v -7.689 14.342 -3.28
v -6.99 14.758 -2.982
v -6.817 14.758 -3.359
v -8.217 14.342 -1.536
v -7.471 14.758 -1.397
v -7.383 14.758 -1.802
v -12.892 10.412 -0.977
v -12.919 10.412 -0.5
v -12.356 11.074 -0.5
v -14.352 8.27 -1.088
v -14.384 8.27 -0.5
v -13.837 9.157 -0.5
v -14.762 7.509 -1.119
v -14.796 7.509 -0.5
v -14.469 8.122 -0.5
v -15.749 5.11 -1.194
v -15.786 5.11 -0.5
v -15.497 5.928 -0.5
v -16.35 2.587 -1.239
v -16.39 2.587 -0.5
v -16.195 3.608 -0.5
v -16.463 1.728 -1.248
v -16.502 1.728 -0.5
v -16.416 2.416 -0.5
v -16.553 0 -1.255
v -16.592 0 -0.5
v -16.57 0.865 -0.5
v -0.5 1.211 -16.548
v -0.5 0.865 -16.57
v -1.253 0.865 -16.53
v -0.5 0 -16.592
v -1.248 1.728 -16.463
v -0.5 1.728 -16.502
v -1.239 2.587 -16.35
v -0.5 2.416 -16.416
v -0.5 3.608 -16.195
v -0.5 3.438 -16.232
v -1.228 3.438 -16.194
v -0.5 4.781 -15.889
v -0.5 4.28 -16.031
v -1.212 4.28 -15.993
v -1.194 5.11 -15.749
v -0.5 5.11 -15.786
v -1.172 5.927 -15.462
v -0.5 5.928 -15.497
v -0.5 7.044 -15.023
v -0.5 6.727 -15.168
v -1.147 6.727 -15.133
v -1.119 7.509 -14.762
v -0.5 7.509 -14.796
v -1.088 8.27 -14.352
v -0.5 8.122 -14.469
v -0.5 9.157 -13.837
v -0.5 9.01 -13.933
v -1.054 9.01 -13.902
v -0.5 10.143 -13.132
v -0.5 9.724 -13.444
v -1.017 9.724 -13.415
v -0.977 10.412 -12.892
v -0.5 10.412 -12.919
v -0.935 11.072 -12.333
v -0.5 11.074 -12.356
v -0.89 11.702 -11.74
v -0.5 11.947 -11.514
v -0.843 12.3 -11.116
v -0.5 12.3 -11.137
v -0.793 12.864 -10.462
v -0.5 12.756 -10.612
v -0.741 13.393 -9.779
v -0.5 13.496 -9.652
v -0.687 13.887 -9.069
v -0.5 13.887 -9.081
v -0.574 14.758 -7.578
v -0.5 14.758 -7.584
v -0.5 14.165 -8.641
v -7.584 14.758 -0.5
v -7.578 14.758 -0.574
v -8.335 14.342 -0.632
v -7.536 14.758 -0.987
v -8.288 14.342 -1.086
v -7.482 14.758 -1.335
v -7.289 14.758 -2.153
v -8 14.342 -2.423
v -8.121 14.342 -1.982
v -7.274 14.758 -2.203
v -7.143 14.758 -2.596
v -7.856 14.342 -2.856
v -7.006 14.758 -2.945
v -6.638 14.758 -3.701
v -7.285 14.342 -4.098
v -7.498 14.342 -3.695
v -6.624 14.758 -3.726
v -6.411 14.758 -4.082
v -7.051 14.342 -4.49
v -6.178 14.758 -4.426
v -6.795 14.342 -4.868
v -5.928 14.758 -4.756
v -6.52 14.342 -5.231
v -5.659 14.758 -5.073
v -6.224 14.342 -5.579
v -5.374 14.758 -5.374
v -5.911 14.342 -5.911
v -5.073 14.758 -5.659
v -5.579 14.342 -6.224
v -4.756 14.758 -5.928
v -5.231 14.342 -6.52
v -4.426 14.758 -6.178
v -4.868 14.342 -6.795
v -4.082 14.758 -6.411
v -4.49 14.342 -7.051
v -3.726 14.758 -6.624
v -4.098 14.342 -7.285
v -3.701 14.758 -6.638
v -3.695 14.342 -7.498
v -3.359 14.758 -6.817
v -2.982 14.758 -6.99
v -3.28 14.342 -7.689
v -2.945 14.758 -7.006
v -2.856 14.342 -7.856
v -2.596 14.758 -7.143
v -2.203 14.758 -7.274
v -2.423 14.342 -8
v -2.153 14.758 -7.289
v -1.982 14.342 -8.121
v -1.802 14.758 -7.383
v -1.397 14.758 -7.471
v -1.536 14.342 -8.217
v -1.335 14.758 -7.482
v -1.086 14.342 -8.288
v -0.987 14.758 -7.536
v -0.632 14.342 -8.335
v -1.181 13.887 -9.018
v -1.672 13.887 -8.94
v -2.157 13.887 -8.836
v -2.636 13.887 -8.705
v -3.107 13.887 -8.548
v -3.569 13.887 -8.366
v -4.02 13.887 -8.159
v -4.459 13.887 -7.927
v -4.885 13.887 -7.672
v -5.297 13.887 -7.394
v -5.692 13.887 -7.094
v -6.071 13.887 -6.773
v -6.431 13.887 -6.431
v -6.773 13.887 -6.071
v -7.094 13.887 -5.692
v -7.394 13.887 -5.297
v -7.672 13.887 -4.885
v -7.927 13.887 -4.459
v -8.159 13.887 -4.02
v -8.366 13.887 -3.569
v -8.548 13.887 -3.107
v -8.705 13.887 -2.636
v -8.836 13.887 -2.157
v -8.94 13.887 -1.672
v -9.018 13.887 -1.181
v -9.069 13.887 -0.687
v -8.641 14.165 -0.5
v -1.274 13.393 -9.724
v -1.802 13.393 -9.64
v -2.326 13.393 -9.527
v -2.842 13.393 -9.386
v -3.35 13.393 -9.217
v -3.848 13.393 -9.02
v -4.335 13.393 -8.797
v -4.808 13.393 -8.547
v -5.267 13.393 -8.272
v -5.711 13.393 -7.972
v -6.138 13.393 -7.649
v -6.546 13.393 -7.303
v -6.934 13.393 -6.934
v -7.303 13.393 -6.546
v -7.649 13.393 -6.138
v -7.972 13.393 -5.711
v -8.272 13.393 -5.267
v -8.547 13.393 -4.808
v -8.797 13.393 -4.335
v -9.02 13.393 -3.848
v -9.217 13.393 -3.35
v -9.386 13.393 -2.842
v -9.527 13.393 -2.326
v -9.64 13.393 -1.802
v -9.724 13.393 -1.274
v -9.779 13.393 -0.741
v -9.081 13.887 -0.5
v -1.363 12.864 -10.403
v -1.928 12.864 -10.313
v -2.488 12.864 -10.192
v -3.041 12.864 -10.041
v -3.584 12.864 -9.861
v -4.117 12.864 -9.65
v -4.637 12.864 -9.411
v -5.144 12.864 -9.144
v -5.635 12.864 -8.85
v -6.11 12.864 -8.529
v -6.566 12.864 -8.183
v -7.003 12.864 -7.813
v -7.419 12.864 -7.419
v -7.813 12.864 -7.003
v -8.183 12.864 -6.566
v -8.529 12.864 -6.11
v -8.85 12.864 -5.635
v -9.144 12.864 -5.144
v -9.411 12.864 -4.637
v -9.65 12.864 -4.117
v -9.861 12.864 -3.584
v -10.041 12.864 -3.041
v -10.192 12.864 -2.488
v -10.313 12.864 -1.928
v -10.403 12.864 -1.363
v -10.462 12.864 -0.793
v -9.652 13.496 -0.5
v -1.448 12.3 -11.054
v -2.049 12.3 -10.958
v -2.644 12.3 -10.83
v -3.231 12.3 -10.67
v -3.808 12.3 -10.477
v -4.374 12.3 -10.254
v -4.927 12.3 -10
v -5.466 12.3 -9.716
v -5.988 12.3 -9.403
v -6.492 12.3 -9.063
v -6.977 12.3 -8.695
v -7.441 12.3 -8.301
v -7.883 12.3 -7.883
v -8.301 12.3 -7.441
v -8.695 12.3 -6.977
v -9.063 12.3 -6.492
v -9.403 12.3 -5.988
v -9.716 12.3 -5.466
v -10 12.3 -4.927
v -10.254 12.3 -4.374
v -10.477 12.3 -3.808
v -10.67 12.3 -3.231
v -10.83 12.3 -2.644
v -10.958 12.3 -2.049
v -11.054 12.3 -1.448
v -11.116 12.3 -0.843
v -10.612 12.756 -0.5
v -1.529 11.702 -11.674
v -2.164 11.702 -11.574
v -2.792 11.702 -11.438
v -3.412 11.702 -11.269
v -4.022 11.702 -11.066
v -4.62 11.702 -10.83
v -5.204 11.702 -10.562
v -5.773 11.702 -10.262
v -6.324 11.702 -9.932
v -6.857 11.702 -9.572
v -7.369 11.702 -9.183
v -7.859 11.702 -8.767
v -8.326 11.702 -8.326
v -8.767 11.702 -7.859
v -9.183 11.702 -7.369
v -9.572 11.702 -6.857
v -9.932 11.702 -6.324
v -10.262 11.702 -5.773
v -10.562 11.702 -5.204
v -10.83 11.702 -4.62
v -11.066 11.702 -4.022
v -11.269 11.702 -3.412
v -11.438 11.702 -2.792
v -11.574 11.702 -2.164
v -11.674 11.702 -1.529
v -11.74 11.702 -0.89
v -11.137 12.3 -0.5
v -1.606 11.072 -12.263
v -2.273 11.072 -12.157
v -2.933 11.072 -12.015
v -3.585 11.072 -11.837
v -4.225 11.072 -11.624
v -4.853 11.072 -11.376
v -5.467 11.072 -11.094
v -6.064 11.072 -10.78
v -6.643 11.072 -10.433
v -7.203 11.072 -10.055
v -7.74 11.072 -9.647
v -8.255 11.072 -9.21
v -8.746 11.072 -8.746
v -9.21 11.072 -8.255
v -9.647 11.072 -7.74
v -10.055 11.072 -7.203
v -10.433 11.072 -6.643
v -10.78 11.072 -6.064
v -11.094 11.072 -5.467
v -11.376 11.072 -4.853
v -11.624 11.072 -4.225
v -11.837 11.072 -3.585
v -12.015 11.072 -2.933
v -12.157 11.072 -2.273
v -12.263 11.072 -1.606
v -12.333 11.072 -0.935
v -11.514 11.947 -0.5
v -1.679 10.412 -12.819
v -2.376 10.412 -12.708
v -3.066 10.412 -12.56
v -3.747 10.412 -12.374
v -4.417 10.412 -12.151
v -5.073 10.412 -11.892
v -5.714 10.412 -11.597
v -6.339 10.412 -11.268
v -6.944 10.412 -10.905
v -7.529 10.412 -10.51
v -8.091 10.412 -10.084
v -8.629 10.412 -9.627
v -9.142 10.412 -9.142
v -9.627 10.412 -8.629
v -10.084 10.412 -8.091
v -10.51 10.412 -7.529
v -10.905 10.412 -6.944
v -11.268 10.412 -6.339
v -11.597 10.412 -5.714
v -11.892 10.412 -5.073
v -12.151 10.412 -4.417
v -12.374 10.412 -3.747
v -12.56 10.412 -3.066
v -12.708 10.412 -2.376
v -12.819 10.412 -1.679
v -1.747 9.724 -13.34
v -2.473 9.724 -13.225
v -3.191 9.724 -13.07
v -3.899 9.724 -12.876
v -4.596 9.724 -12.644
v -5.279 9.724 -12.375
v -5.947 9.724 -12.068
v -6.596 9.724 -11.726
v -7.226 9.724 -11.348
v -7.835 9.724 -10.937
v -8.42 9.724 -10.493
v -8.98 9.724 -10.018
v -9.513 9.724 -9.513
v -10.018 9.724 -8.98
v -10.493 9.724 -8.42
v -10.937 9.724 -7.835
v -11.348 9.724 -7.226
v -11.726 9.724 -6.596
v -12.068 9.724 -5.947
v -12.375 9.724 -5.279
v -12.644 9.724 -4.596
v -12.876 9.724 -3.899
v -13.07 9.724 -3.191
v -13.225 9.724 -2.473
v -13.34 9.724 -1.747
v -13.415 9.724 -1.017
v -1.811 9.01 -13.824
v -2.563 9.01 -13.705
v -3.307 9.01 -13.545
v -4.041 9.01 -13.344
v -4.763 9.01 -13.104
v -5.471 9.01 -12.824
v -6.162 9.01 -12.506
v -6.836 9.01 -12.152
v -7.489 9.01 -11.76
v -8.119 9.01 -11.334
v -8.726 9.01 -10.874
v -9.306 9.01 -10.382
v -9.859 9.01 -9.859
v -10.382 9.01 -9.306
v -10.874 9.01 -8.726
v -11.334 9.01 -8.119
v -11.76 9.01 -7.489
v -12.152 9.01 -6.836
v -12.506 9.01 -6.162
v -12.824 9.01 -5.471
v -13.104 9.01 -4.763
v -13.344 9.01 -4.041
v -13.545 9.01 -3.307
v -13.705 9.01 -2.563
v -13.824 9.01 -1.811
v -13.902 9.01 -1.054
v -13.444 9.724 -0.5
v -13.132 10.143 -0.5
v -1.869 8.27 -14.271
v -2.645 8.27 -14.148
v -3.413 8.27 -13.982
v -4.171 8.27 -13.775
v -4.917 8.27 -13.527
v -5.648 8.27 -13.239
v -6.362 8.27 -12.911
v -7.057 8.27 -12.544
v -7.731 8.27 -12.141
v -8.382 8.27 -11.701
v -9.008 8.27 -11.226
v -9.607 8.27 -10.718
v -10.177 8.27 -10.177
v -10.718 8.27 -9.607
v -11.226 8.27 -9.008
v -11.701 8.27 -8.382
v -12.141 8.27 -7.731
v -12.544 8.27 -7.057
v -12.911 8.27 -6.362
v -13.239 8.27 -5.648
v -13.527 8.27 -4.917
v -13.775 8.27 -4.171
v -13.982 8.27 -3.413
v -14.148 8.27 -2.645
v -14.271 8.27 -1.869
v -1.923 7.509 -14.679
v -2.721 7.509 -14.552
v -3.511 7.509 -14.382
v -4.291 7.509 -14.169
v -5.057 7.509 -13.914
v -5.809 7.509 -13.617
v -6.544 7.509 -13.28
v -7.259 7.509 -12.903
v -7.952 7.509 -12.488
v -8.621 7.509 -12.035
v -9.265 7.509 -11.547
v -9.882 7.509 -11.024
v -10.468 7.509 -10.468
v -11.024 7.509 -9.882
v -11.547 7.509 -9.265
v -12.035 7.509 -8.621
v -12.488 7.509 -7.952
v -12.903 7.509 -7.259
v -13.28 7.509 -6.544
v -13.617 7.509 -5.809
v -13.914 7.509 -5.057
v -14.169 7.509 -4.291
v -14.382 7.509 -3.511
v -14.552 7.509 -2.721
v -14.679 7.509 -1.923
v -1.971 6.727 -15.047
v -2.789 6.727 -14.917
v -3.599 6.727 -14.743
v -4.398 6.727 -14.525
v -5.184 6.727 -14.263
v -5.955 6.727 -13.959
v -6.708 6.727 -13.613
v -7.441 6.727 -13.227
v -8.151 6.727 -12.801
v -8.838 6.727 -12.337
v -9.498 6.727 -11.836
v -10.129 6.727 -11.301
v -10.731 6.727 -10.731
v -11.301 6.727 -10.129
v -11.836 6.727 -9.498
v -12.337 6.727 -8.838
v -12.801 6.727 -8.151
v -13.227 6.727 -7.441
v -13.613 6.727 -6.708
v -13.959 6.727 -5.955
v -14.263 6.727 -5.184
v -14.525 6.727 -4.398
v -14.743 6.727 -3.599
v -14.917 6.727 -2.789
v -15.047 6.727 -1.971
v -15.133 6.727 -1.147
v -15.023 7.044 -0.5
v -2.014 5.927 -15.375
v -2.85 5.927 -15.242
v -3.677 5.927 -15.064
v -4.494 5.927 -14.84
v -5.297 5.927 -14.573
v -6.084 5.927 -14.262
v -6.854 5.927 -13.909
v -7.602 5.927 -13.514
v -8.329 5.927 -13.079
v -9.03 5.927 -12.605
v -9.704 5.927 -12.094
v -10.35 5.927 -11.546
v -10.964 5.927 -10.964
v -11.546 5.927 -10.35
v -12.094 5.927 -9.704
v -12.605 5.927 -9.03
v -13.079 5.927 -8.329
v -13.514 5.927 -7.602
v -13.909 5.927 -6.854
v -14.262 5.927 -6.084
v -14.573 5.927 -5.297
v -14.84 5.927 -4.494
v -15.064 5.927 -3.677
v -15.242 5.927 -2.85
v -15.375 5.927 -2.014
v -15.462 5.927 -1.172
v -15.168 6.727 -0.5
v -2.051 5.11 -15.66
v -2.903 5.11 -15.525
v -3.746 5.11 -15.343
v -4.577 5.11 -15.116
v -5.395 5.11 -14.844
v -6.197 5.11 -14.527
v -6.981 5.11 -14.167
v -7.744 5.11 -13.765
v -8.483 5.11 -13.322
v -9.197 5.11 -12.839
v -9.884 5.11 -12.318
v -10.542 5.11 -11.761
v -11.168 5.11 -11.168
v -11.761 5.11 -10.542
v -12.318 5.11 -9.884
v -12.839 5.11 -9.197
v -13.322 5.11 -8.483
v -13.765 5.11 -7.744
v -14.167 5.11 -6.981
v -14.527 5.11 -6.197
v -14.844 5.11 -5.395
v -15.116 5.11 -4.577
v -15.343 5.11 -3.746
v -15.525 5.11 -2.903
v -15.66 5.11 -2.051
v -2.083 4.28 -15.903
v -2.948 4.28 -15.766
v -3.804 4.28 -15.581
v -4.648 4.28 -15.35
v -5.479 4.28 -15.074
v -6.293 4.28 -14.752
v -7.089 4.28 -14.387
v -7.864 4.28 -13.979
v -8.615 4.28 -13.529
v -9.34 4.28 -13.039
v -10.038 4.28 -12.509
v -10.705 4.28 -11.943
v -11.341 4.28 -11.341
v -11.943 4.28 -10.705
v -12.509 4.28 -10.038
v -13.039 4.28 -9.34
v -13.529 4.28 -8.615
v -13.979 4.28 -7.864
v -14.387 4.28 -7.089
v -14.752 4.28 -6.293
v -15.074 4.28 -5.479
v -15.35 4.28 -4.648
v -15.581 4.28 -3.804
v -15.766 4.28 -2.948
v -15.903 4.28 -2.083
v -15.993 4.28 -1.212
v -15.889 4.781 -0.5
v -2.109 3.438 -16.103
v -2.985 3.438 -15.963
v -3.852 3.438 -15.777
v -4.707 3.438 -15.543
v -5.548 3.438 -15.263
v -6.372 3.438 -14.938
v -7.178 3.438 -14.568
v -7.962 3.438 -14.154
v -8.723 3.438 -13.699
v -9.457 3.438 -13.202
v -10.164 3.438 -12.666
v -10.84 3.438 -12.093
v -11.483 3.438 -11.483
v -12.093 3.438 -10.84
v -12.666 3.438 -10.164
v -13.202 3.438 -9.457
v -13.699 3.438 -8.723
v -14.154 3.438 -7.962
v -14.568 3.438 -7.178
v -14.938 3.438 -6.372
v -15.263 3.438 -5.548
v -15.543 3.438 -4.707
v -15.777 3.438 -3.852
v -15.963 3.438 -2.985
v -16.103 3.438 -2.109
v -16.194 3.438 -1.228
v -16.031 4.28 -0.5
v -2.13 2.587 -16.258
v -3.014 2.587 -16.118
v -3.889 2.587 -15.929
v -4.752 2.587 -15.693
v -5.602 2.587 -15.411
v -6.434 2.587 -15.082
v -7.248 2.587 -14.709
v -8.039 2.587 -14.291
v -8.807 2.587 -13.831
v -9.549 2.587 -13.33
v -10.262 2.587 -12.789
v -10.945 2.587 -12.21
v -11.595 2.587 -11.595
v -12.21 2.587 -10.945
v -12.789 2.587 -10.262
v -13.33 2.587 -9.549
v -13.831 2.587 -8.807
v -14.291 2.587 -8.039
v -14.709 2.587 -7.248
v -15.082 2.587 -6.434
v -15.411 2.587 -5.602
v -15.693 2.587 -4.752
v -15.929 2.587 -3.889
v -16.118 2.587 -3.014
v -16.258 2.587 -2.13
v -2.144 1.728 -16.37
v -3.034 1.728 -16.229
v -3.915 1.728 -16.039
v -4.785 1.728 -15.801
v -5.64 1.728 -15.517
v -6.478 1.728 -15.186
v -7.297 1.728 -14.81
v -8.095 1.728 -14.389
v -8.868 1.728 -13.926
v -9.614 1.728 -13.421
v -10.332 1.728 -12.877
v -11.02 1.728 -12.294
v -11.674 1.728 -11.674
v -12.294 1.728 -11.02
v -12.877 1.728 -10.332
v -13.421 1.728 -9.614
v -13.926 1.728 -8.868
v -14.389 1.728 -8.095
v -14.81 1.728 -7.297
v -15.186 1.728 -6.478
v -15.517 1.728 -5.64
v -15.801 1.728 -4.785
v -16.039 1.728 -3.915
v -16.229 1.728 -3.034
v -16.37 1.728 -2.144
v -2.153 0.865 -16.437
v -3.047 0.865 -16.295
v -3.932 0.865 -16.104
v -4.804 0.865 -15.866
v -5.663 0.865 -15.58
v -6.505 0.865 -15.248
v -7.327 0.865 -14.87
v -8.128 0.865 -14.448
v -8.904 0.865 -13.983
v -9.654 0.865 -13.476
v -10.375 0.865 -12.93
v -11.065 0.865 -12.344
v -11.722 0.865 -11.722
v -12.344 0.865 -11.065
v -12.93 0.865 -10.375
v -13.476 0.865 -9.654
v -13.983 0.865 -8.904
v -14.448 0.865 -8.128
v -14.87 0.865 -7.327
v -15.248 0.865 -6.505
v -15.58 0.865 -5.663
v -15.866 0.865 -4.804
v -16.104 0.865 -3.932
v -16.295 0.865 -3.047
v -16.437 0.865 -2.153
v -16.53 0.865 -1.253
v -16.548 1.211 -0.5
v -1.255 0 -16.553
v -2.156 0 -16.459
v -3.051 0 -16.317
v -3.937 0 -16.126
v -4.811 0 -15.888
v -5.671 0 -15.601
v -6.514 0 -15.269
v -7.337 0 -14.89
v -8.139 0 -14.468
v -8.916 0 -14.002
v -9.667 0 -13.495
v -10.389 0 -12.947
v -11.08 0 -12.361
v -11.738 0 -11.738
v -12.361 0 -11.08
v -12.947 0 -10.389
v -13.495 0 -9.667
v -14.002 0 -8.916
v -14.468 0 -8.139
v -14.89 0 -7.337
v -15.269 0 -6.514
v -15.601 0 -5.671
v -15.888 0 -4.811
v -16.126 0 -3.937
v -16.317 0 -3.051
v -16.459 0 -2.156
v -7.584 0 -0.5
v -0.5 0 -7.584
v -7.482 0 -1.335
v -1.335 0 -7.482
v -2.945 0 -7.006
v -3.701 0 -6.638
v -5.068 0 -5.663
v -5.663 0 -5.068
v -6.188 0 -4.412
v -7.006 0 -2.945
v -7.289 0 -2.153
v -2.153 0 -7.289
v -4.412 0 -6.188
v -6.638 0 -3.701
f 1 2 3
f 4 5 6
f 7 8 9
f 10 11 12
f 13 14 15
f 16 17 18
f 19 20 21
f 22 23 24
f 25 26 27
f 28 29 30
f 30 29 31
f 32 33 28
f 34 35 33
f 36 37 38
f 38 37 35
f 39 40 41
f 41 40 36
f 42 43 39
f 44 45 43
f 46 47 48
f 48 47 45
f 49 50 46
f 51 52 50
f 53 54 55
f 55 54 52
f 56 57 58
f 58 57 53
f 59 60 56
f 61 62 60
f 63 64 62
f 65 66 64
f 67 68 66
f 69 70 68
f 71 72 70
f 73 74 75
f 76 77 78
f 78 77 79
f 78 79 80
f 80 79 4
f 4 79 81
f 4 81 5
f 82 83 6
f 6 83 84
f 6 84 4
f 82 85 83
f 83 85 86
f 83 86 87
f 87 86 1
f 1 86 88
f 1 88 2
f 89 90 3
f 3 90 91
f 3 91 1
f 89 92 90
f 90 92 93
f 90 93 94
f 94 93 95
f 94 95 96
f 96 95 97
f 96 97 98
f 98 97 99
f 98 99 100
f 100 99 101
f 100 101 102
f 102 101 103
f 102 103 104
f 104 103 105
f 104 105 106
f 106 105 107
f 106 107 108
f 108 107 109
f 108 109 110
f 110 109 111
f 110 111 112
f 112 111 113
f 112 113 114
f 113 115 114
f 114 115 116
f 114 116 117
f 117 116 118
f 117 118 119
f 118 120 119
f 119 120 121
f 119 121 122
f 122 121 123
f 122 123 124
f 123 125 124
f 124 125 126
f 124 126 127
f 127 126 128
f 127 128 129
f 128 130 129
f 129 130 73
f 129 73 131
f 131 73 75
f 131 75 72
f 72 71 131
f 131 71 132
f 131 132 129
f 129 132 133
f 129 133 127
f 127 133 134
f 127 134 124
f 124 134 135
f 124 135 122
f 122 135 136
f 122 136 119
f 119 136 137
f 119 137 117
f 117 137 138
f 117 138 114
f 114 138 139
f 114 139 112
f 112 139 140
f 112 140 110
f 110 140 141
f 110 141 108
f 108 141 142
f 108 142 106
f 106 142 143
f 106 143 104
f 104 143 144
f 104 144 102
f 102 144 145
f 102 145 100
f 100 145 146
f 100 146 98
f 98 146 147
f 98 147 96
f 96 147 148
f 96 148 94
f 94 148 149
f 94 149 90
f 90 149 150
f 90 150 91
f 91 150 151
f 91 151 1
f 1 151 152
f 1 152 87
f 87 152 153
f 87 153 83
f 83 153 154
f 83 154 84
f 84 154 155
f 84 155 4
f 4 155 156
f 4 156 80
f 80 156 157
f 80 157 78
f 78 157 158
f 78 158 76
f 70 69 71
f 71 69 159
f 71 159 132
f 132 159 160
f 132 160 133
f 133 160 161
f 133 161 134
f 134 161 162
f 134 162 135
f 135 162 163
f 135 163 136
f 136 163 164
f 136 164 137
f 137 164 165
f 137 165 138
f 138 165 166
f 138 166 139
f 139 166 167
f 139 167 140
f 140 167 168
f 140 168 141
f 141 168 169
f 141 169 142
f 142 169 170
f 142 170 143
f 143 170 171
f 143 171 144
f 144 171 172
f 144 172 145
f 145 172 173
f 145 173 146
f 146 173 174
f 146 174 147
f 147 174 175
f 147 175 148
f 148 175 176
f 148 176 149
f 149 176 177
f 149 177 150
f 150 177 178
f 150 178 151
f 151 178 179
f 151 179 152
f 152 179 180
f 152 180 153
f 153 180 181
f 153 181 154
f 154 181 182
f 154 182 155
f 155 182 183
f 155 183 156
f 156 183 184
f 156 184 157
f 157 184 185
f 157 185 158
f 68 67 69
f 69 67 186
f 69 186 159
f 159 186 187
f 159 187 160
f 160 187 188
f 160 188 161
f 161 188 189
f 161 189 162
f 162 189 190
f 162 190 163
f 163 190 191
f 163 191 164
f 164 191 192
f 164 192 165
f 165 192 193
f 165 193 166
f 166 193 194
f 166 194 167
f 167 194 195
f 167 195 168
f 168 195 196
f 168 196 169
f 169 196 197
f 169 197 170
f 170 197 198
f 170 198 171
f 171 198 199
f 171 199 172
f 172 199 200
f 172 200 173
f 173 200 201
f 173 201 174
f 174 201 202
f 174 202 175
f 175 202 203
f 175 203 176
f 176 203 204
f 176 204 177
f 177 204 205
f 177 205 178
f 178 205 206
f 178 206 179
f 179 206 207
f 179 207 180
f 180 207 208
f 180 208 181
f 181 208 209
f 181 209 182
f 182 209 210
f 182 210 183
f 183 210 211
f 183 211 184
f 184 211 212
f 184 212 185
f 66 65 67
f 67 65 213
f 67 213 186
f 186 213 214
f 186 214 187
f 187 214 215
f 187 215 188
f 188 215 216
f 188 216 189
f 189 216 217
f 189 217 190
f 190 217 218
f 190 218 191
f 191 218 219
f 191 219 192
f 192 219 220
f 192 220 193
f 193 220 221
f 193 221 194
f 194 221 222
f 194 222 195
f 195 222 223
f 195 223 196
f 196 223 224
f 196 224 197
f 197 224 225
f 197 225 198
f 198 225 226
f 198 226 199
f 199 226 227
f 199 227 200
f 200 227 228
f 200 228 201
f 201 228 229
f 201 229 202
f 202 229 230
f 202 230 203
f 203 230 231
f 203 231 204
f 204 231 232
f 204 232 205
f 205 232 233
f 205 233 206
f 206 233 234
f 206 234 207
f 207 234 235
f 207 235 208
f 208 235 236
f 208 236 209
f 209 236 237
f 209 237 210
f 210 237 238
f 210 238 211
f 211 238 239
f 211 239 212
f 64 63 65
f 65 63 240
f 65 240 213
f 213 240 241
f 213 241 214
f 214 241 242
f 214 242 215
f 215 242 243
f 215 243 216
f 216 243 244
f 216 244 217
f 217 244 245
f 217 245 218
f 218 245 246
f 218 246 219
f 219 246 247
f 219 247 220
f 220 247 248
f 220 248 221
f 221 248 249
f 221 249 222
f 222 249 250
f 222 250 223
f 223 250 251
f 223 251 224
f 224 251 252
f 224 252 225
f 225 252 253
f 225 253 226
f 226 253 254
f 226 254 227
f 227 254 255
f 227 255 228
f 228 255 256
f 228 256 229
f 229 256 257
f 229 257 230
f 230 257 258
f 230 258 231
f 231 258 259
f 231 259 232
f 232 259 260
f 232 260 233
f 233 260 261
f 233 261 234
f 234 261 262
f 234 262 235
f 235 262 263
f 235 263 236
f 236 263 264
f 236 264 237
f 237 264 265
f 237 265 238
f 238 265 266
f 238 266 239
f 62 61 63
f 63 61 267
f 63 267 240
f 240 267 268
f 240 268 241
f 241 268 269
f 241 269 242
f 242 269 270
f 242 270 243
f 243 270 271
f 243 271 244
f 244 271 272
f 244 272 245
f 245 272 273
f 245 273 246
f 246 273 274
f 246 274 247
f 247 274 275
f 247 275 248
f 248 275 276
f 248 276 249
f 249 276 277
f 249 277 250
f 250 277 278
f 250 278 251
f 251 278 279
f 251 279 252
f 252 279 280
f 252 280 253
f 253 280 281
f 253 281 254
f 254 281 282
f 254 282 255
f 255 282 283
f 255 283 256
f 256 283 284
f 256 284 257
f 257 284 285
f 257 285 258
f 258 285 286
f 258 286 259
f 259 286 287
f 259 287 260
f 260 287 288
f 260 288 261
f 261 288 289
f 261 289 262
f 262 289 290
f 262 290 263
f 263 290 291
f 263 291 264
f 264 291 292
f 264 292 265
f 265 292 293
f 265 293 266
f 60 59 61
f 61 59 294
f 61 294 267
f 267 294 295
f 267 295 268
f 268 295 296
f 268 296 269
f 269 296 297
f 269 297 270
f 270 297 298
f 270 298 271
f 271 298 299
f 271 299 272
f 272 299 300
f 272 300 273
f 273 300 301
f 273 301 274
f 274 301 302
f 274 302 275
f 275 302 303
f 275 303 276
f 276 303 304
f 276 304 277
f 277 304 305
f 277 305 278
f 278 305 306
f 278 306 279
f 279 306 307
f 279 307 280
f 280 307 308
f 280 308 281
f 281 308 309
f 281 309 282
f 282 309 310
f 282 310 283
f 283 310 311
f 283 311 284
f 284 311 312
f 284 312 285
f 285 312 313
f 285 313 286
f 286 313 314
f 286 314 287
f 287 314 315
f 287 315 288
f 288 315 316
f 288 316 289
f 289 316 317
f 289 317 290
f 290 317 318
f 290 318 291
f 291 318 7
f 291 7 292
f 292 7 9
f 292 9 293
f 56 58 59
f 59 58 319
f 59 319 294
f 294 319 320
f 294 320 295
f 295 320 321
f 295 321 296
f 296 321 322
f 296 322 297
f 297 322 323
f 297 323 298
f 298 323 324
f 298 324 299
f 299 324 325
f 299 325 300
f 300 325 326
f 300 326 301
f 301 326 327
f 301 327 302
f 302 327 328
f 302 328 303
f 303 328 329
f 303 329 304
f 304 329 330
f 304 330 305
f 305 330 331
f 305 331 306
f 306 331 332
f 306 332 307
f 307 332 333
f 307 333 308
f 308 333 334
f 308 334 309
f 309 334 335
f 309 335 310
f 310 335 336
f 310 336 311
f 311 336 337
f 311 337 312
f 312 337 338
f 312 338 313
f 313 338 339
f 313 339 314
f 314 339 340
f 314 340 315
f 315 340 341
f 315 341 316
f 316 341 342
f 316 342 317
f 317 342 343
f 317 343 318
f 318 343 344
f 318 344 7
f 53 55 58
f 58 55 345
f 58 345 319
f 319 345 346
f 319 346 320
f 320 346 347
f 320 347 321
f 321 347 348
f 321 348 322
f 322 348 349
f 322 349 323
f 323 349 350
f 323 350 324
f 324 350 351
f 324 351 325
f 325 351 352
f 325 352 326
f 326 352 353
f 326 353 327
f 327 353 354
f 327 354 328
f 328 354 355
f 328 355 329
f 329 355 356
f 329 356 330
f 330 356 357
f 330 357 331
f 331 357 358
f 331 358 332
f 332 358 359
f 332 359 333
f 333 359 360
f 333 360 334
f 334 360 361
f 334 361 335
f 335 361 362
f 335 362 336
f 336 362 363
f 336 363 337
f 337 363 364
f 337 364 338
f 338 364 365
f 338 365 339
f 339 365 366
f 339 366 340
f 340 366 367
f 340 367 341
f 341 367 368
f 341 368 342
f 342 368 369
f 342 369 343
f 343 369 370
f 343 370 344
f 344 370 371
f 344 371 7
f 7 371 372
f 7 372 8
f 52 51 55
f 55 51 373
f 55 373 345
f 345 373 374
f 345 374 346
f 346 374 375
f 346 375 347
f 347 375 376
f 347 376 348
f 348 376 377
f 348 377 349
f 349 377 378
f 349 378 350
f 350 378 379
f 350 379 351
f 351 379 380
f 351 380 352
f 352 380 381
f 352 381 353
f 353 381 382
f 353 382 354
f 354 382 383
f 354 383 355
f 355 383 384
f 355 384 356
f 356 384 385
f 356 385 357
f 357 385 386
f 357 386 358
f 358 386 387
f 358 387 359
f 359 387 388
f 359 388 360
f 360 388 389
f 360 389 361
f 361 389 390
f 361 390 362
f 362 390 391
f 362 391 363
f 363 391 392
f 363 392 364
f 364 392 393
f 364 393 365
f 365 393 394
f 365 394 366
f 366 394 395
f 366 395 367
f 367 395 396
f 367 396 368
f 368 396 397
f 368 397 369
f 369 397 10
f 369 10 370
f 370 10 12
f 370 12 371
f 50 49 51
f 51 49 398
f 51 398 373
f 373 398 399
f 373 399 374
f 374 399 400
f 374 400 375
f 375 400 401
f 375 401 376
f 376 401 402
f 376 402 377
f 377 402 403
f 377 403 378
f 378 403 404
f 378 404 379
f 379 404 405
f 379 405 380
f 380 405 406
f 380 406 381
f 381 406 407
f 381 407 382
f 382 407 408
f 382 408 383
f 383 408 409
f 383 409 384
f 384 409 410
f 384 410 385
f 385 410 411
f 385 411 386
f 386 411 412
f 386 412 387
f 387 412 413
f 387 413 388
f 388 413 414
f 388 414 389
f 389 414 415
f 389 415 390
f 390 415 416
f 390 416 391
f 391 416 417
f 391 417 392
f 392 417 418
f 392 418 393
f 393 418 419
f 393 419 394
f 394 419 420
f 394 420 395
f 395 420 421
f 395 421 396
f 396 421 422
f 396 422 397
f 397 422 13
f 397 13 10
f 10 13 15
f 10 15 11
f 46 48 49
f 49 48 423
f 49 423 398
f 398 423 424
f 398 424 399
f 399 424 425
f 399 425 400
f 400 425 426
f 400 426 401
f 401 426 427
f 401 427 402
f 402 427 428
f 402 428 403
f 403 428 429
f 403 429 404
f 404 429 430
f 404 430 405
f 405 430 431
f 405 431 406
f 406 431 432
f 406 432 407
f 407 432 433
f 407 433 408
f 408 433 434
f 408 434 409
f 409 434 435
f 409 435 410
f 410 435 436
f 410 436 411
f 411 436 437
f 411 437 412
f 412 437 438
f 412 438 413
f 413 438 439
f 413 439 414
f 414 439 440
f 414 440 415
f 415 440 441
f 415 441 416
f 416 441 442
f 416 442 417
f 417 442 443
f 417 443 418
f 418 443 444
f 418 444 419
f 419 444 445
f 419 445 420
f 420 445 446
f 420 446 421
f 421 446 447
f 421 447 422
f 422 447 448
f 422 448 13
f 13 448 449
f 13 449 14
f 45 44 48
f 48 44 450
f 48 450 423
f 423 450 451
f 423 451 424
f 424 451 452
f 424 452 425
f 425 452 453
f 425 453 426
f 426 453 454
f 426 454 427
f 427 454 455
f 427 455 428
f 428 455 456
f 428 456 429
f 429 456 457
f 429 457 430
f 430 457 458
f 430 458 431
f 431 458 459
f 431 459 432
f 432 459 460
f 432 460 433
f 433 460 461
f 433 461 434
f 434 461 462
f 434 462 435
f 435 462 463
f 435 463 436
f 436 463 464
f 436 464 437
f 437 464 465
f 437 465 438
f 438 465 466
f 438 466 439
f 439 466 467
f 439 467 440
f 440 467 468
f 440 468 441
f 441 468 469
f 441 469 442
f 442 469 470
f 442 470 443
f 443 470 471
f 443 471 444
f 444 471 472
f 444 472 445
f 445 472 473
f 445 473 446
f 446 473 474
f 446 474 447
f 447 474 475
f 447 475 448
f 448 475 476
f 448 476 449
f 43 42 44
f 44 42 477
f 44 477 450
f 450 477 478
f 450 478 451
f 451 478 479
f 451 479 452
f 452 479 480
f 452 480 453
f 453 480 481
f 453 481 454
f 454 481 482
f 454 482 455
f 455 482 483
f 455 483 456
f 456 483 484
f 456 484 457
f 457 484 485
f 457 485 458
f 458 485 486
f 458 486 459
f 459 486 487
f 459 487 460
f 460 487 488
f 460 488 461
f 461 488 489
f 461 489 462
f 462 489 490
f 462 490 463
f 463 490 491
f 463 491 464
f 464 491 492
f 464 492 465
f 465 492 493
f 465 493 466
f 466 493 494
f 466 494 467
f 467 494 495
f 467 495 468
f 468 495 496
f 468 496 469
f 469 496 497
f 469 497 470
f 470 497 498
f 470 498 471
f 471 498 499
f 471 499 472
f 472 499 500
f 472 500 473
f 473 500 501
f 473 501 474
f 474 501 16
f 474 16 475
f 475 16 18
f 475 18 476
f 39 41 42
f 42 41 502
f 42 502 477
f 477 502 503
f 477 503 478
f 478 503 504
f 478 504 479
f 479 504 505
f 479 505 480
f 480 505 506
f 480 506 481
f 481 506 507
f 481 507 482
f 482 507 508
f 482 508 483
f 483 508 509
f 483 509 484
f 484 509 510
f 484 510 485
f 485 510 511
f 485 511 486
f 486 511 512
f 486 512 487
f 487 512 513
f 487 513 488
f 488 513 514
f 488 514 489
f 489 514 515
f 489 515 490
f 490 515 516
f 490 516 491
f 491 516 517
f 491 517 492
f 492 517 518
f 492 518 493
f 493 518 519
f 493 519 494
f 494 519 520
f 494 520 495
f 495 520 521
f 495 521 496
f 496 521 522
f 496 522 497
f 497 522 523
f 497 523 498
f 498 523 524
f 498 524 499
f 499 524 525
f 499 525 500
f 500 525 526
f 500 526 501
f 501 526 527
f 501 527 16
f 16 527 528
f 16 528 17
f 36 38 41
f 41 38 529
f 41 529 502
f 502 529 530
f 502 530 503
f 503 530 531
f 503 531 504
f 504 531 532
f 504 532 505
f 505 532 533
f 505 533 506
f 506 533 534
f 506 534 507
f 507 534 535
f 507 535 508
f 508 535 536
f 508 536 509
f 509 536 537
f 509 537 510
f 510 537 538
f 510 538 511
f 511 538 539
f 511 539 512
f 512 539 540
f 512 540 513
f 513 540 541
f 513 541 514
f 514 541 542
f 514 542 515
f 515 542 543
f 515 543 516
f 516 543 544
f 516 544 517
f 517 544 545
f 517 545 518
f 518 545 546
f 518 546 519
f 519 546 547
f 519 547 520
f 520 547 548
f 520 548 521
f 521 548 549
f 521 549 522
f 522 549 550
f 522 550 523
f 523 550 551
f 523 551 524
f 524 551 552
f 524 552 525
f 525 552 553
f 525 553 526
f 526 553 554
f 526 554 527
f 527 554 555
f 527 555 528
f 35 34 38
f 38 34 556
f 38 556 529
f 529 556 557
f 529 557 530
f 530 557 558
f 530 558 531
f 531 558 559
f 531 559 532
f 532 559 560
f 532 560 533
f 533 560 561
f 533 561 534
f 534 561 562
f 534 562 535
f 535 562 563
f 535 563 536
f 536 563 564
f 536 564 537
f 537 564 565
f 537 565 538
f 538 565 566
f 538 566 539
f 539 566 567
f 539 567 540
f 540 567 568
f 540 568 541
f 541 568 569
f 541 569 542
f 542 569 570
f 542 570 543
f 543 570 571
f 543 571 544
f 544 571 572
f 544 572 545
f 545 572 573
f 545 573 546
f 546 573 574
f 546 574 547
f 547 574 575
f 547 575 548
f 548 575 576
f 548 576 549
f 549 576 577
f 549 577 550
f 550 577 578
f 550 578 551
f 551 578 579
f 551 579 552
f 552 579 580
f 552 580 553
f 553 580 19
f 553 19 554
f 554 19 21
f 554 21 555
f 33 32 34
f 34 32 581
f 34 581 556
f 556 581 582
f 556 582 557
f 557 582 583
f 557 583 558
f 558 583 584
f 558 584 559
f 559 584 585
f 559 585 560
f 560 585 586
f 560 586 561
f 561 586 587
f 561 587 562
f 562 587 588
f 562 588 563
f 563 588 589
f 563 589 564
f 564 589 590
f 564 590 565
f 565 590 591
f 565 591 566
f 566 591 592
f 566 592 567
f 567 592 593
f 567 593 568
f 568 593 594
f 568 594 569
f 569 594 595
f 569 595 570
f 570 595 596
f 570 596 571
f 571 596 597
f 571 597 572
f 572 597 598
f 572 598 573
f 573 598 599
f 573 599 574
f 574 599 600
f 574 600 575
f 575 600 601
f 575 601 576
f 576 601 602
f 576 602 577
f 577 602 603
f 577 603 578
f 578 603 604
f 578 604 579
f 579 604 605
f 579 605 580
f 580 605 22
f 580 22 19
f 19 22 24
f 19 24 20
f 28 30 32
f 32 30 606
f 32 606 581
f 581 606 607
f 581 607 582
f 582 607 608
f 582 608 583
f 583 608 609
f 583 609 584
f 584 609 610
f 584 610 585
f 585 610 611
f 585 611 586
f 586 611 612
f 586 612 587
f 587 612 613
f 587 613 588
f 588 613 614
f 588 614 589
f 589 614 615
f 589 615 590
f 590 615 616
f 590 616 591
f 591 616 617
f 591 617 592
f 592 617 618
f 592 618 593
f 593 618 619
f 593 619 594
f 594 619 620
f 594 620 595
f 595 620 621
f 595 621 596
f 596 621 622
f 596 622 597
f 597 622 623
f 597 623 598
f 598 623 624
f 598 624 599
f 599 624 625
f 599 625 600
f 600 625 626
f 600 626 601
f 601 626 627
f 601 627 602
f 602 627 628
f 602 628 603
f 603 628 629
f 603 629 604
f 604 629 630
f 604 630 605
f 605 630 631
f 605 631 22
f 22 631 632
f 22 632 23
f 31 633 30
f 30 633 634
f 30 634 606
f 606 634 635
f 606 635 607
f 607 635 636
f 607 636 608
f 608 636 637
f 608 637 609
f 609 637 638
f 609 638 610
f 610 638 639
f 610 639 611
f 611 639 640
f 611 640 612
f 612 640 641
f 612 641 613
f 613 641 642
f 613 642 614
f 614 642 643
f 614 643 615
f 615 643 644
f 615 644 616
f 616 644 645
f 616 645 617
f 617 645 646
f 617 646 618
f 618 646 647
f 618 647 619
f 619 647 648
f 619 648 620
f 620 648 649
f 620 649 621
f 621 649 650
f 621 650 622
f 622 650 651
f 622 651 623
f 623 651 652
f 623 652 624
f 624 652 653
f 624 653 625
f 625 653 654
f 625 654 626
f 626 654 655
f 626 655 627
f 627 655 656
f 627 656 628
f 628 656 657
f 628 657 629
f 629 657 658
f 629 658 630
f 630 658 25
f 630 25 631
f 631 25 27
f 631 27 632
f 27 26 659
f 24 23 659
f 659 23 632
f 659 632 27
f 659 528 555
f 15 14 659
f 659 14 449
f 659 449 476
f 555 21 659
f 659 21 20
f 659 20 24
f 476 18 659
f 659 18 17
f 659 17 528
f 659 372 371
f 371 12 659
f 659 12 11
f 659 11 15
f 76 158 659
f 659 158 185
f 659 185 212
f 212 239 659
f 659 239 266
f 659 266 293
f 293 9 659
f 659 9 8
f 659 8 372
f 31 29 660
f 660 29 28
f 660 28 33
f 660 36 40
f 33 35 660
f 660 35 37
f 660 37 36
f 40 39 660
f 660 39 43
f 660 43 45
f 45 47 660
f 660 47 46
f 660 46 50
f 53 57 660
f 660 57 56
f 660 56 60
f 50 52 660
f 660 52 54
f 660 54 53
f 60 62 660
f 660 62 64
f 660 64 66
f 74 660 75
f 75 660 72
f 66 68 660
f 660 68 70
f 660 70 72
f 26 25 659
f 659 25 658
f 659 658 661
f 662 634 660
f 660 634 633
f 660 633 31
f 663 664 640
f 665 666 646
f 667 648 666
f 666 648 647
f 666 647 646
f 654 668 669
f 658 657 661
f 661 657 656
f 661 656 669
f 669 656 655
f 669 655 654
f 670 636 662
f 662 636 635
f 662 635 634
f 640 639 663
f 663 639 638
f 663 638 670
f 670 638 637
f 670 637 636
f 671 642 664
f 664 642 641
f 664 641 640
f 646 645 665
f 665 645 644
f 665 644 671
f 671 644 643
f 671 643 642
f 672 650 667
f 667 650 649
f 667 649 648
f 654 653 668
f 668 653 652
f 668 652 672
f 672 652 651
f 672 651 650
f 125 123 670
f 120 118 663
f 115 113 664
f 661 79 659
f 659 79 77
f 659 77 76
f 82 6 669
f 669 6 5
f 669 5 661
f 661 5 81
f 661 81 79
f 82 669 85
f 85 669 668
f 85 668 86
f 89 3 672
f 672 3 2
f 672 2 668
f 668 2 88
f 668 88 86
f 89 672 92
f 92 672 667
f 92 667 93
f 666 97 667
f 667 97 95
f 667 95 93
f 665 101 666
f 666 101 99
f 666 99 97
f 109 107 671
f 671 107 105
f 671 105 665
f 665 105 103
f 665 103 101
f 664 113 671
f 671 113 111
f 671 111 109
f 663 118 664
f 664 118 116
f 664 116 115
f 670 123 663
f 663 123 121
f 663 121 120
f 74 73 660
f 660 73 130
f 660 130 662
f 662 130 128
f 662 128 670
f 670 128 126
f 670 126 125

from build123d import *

# Parameters (mm, degrees)
CUT_EXTRUDE1_DEPTH      = 29.752043406
CUT_EXTRUDE1_DEPTH_BACK = 29.752043406
SKETCH3_W               = 19.816571208
SKETCH3_H               = 17.600838627
CUT_EXTRUDE2_DEPTH      = 29.448858181
SKETCH6_R               = 7.6
CUT_EXTRUDE3_DEPTH      = 29.734648075


with BuildPart() as part:
    # Sketch1 → Revolve1 (revolve)
    with BuildSketch(Plane.XY):
        with BuildLine():
            Line((0, 16.6), (0, -16.6))
            ThreePointArc((0, -16.6), (-16.6, 0), (0, 16.6))
        make_face()
    revolve(axis=Axis((0, 16.6, 0), (0, -1, 0)))

    # Sketch2 → Cut-Extrude1 (cut, two sides: drawn at the far end of the back side and taken through both)
    with BuildSketch(Plane(origin=(0, 0, 0), x_dir=(1, 0, 0), z_dir=(0, 1, 0)).offset(-CUT_EXTRUDE1_DEPTH_BACK)):
        with BuildLine():
            Line((-0.5, 16.592468171), (-0.5, 0.5))
            Line((-0.5, 0.5), (-16.592468171, 0.5))
            ThreePointArc((-16.592468171, 0.5), (11.737972568, -11.737972568), (-0.5, 16.592468171))
        make_face()
    extrude(amount=CUT_EXTRUDE1_DEPTH + CUT_EXTRUDE1_DEPTH_BACK, mode=Mode.SUBTRACT)

    # Sketch3 → Cut-Extrude2 (cut, through all)
    with BuildSketch(Plane(origin=(-0.5, 0, 0), x_dir=(0, 0, -1), z_dir=(1, 0, 0))):
        with Locations((9.908285604, -8.800419314)):
            Rectangle(SKETCH3_W, SKETCH3_H)
    extrude(amount=-CUT_EXTRUDE2_DEPTH, mode=Mode.SUBTRACT)

    # Sketch6 → Cut-Extrude3 (cut, through all)
    with BuildSketch(Plane.XZ):
        Circle(SKETCH6_R)
    extrude(amount=-CUT_EXTRUDE3_DEPTH, mode=Mode.SUBTRACT)


solid = part.part
